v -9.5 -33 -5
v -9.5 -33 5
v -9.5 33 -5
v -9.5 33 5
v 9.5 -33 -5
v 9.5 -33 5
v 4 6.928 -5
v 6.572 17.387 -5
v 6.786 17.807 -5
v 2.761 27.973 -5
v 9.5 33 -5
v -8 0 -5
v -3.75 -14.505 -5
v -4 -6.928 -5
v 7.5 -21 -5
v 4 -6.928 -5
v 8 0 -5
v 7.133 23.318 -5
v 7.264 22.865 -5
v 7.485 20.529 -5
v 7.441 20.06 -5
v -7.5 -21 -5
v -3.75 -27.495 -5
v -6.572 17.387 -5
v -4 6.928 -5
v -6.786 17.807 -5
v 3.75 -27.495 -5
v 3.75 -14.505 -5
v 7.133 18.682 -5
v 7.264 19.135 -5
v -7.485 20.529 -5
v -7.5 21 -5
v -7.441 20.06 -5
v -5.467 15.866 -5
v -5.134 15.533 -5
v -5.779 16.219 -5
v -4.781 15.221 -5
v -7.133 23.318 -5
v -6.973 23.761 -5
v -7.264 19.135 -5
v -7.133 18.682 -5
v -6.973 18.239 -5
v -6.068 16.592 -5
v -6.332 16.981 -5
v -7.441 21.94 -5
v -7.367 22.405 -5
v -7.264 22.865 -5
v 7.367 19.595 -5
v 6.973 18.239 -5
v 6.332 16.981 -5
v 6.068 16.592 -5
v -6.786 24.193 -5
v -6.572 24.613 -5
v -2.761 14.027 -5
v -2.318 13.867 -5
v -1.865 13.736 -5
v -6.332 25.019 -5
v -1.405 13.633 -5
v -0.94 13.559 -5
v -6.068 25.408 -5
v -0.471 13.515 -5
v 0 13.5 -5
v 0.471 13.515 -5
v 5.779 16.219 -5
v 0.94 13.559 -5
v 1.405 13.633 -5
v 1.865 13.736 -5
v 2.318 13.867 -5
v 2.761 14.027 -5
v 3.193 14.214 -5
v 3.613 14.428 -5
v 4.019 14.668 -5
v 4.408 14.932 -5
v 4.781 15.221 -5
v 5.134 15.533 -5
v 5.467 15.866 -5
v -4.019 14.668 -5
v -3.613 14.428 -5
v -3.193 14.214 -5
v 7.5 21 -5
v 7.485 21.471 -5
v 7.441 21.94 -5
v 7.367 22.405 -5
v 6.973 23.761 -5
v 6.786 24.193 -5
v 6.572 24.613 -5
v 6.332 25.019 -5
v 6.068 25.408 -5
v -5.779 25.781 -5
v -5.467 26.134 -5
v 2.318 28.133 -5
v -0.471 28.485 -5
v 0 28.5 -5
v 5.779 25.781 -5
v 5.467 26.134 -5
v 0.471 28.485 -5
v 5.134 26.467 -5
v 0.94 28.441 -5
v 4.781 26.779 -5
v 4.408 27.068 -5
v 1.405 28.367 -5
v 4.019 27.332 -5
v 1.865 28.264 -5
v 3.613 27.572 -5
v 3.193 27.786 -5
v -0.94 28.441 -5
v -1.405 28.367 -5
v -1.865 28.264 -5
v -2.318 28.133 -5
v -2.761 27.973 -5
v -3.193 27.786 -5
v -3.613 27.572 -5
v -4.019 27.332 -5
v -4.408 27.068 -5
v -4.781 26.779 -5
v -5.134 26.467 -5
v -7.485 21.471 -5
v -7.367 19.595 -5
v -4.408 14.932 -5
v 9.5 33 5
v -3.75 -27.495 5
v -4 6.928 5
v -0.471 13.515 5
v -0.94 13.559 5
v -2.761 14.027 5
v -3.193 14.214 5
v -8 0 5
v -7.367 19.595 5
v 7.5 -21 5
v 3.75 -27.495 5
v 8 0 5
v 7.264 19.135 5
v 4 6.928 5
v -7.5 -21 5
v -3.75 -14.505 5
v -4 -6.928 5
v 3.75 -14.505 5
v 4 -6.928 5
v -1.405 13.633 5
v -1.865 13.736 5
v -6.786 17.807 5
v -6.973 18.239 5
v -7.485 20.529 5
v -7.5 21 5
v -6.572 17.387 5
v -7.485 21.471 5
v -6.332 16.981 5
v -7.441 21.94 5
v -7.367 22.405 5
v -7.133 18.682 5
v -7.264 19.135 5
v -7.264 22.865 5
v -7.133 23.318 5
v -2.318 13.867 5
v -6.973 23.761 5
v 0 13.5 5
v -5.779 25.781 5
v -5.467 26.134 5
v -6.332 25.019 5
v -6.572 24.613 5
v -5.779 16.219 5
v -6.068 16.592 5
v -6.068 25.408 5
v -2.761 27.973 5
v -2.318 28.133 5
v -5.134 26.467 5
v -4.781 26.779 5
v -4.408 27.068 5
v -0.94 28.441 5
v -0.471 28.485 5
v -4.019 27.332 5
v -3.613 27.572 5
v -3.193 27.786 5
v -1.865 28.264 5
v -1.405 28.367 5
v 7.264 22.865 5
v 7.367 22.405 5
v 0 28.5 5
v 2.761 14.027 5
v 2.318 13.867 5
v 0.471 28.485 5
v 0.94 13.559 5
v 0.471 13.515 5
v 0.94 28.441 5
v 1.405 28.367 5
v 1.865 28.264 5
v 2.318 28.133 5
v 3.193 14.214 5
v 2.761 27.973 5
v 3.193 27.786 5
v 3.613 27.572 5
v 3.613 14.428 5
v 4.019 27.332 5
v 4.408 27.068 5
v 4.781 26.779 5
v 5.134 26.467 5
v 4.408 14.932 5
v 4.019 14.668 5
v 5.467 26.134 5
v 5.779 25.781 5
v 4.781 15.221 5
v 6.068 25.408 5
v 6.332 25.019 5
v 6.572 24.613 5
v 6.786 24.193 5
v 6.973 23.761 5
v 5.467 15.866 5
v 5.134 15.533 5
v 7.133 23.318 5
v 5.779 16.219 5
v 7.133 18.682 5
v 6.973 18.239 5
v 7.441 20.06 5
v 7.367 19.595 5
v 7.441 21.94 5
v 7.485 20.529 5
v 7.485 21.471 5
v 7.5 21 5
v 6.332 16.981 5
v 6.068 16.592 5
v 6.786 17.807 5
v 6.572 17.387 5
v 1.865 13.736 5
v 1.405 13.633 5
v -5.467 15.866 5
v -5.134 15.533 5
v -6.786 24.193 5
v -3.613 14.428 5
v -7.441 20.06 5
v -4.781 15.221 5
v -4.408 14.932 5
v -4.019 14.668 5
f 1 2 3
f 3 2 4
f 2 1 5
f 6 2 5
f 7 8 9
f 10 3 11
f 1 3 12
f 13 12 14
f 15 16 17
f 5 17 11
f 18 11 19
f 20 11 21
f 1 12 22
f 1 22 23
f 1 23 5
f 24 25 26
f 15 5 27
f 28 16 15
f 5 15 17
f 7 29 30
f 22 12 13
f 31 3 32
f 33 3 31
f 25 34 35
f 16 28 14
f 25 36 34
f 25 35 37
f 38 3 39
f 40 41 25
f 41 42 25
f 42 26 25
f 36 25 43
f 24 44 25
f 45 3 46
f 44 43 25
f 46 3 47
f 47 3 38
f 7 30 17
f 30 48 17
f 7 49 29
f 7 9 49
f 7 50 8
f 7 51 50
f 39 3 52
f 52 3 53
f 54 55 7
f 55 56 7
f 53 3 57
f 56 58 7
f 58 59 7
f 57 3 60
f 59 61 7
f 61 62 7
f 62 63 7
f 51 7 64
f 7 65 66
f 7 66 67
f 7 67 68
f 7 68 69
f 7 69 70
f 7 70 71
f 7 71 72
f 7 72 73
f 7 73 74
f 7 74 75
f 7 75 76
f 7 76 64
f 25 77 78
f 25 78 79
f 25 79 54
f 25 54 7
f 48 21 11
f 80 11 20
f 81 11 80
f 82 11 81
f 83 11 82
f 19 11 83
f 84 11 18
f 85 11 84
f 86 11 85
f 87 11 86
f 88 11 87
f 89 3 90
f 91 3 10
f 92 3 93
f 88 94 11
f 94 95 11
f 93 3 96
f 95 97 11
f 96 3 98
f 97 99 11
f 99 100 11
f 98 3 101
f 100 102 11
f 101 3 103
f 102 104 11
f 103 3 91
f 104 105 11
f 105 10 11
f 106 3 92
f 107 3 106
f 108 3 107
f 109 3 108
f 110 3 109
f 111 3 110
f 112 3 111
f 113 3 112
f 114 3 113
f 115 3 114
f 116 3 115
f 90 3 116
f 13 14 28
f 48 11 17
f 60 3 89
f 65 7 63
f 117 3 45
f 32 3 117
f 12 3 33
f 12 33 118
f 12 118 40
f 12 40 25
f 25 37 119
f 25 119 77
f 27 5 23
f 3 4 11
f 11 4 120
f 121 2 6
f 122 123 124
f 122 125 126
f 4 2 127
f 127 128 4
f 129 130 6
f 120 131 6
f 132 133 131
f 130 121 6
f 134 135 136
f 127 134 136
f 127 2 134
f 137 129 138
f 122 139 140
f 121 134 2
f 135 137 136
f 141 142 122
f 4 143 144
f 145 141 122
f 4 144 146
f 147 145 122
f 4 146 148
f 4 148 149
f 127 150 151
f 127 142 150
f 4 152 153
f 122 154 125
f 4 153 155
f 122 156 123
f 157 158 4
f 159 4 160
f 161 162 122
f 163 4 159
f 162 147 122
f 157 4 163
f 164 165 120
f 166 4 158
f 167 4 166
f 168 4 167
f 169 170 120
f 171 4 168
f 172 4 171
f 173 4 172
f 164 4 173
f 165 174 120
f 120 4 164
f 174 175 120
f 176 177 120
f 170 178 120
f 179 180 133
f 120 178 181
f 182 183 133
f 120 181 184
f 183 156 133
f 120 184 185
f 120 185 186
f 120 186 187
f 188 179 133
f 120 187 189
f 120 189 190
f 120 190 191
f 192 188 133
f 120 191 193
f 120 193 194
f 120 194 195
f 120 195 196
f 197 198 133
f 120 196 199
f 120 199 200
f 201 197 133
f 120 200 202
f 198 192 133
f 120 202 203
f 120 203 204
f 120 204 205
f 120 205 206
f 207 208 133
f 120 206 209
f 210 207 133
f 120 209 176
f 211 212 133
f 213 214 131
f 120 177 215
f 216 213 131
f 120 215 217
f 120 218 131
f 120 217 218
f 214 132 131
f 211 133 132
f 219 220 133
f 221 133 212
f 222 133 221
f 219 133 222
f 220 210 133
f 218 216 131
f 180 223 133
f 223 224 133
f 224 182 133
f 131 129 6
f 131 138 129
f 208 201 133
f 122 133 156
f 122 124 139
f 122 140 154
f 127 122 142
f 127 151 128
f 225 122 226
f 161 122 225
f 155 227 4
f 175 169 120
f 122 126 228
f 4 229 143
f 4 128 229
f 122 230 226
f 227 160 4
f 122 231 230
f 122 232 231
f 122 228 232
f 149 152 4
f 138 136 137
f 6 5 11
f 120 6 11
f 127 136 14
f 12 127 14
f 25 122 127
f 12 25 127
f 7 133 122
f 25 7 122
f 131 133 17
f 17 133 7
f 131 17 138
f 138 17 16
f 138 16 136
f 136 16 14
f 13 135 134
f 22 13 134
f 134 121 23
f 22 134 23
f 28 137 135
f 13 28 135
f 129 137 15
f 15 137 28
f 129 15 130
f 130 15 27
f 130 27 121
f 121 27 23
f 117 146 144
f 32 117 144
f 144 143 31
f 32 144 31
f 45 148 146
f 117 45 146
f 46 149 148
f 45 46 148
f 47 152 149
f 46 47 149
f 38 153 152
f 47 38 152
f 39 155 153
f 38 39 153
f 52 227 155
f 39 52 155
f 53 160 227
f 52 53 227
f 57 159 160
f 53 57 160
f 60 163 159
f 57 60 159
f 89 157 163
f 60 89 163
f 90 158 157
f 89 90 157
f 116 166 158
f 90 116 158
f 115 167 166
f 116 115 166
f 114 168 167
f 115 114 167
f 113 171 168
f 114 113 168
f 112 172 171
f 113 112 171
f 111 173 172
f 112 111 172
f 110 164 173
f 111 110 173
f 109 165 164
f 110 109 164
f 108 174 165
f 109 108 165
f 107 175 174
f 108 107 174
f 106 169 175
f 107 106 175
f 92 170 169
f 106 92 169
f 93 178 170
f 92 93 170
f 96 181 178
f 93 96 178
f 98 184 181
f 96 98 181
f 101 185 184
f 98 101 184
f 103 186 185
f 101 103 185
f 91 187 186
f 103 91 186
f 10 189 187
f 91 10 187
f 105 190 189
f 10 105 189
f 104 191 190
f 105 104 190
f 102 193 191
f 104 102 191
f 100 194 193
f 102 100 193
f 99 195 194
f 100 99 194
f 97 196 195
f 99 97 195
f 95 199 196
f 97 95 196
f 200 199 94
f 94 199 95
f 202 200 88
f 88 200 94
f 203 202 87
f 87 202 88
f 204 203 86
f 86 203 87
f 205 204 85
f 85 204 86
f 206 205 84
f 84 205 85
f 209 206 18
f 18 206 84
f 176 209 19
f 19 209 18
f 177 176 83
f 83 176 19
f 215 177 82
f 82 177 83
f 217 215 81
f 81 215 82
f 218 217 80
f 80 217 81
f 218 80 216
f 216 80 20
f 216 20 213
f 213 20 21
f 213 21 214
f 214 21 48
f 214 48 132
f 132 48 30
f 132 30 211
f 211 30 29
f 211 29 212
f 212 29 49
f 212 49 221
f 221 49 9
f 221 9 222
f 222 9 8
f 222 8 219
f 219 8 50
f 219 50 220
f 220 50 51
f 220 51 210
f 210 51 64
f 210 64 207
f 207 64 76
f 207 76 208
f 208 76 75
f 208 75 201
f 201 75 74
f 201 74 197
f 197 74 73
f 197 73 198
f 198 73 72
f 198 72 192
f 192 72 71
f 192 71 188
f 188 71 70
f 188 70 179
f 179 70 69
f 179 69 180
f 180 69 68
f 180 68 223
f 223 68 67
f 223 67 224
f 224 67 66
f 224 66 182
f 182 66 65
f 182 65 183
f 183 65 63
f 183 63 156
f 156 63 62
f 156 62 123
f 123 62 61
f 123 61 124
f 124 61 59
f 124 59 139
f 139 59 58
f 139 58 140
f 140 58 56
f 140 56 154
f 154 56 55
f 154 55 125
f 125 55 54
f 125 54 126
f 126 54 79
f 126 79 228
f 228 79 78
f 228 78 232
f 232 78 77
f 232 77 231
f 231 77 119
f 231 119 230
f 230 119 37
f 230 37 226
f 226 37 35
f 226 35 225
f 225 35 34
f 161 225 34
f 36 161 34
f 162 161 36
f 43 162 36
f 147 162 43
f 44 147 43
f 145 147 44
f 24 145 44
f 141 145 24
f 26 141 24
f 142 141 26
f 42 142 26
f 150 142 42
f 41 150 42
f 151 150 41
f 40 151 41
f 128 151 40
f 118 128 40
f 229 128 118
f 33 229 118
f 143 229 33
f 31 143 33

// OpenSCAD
module axes_support() {
   difference() {
	// basic structure
	color("yellow") cube([19, 66, 10], center=true);
	color("red") translate([0, 21, 0]) cylinder(h = 10, r=7.5, $fn=100, center=true);
	color("blue") translate([0, -21, 0]) cylinder(h = 10, r=7.5, $fn=6, center=true);
	cylinder(h=10, r=8, $fn=6, center=true);
   }
}

axes_support();
